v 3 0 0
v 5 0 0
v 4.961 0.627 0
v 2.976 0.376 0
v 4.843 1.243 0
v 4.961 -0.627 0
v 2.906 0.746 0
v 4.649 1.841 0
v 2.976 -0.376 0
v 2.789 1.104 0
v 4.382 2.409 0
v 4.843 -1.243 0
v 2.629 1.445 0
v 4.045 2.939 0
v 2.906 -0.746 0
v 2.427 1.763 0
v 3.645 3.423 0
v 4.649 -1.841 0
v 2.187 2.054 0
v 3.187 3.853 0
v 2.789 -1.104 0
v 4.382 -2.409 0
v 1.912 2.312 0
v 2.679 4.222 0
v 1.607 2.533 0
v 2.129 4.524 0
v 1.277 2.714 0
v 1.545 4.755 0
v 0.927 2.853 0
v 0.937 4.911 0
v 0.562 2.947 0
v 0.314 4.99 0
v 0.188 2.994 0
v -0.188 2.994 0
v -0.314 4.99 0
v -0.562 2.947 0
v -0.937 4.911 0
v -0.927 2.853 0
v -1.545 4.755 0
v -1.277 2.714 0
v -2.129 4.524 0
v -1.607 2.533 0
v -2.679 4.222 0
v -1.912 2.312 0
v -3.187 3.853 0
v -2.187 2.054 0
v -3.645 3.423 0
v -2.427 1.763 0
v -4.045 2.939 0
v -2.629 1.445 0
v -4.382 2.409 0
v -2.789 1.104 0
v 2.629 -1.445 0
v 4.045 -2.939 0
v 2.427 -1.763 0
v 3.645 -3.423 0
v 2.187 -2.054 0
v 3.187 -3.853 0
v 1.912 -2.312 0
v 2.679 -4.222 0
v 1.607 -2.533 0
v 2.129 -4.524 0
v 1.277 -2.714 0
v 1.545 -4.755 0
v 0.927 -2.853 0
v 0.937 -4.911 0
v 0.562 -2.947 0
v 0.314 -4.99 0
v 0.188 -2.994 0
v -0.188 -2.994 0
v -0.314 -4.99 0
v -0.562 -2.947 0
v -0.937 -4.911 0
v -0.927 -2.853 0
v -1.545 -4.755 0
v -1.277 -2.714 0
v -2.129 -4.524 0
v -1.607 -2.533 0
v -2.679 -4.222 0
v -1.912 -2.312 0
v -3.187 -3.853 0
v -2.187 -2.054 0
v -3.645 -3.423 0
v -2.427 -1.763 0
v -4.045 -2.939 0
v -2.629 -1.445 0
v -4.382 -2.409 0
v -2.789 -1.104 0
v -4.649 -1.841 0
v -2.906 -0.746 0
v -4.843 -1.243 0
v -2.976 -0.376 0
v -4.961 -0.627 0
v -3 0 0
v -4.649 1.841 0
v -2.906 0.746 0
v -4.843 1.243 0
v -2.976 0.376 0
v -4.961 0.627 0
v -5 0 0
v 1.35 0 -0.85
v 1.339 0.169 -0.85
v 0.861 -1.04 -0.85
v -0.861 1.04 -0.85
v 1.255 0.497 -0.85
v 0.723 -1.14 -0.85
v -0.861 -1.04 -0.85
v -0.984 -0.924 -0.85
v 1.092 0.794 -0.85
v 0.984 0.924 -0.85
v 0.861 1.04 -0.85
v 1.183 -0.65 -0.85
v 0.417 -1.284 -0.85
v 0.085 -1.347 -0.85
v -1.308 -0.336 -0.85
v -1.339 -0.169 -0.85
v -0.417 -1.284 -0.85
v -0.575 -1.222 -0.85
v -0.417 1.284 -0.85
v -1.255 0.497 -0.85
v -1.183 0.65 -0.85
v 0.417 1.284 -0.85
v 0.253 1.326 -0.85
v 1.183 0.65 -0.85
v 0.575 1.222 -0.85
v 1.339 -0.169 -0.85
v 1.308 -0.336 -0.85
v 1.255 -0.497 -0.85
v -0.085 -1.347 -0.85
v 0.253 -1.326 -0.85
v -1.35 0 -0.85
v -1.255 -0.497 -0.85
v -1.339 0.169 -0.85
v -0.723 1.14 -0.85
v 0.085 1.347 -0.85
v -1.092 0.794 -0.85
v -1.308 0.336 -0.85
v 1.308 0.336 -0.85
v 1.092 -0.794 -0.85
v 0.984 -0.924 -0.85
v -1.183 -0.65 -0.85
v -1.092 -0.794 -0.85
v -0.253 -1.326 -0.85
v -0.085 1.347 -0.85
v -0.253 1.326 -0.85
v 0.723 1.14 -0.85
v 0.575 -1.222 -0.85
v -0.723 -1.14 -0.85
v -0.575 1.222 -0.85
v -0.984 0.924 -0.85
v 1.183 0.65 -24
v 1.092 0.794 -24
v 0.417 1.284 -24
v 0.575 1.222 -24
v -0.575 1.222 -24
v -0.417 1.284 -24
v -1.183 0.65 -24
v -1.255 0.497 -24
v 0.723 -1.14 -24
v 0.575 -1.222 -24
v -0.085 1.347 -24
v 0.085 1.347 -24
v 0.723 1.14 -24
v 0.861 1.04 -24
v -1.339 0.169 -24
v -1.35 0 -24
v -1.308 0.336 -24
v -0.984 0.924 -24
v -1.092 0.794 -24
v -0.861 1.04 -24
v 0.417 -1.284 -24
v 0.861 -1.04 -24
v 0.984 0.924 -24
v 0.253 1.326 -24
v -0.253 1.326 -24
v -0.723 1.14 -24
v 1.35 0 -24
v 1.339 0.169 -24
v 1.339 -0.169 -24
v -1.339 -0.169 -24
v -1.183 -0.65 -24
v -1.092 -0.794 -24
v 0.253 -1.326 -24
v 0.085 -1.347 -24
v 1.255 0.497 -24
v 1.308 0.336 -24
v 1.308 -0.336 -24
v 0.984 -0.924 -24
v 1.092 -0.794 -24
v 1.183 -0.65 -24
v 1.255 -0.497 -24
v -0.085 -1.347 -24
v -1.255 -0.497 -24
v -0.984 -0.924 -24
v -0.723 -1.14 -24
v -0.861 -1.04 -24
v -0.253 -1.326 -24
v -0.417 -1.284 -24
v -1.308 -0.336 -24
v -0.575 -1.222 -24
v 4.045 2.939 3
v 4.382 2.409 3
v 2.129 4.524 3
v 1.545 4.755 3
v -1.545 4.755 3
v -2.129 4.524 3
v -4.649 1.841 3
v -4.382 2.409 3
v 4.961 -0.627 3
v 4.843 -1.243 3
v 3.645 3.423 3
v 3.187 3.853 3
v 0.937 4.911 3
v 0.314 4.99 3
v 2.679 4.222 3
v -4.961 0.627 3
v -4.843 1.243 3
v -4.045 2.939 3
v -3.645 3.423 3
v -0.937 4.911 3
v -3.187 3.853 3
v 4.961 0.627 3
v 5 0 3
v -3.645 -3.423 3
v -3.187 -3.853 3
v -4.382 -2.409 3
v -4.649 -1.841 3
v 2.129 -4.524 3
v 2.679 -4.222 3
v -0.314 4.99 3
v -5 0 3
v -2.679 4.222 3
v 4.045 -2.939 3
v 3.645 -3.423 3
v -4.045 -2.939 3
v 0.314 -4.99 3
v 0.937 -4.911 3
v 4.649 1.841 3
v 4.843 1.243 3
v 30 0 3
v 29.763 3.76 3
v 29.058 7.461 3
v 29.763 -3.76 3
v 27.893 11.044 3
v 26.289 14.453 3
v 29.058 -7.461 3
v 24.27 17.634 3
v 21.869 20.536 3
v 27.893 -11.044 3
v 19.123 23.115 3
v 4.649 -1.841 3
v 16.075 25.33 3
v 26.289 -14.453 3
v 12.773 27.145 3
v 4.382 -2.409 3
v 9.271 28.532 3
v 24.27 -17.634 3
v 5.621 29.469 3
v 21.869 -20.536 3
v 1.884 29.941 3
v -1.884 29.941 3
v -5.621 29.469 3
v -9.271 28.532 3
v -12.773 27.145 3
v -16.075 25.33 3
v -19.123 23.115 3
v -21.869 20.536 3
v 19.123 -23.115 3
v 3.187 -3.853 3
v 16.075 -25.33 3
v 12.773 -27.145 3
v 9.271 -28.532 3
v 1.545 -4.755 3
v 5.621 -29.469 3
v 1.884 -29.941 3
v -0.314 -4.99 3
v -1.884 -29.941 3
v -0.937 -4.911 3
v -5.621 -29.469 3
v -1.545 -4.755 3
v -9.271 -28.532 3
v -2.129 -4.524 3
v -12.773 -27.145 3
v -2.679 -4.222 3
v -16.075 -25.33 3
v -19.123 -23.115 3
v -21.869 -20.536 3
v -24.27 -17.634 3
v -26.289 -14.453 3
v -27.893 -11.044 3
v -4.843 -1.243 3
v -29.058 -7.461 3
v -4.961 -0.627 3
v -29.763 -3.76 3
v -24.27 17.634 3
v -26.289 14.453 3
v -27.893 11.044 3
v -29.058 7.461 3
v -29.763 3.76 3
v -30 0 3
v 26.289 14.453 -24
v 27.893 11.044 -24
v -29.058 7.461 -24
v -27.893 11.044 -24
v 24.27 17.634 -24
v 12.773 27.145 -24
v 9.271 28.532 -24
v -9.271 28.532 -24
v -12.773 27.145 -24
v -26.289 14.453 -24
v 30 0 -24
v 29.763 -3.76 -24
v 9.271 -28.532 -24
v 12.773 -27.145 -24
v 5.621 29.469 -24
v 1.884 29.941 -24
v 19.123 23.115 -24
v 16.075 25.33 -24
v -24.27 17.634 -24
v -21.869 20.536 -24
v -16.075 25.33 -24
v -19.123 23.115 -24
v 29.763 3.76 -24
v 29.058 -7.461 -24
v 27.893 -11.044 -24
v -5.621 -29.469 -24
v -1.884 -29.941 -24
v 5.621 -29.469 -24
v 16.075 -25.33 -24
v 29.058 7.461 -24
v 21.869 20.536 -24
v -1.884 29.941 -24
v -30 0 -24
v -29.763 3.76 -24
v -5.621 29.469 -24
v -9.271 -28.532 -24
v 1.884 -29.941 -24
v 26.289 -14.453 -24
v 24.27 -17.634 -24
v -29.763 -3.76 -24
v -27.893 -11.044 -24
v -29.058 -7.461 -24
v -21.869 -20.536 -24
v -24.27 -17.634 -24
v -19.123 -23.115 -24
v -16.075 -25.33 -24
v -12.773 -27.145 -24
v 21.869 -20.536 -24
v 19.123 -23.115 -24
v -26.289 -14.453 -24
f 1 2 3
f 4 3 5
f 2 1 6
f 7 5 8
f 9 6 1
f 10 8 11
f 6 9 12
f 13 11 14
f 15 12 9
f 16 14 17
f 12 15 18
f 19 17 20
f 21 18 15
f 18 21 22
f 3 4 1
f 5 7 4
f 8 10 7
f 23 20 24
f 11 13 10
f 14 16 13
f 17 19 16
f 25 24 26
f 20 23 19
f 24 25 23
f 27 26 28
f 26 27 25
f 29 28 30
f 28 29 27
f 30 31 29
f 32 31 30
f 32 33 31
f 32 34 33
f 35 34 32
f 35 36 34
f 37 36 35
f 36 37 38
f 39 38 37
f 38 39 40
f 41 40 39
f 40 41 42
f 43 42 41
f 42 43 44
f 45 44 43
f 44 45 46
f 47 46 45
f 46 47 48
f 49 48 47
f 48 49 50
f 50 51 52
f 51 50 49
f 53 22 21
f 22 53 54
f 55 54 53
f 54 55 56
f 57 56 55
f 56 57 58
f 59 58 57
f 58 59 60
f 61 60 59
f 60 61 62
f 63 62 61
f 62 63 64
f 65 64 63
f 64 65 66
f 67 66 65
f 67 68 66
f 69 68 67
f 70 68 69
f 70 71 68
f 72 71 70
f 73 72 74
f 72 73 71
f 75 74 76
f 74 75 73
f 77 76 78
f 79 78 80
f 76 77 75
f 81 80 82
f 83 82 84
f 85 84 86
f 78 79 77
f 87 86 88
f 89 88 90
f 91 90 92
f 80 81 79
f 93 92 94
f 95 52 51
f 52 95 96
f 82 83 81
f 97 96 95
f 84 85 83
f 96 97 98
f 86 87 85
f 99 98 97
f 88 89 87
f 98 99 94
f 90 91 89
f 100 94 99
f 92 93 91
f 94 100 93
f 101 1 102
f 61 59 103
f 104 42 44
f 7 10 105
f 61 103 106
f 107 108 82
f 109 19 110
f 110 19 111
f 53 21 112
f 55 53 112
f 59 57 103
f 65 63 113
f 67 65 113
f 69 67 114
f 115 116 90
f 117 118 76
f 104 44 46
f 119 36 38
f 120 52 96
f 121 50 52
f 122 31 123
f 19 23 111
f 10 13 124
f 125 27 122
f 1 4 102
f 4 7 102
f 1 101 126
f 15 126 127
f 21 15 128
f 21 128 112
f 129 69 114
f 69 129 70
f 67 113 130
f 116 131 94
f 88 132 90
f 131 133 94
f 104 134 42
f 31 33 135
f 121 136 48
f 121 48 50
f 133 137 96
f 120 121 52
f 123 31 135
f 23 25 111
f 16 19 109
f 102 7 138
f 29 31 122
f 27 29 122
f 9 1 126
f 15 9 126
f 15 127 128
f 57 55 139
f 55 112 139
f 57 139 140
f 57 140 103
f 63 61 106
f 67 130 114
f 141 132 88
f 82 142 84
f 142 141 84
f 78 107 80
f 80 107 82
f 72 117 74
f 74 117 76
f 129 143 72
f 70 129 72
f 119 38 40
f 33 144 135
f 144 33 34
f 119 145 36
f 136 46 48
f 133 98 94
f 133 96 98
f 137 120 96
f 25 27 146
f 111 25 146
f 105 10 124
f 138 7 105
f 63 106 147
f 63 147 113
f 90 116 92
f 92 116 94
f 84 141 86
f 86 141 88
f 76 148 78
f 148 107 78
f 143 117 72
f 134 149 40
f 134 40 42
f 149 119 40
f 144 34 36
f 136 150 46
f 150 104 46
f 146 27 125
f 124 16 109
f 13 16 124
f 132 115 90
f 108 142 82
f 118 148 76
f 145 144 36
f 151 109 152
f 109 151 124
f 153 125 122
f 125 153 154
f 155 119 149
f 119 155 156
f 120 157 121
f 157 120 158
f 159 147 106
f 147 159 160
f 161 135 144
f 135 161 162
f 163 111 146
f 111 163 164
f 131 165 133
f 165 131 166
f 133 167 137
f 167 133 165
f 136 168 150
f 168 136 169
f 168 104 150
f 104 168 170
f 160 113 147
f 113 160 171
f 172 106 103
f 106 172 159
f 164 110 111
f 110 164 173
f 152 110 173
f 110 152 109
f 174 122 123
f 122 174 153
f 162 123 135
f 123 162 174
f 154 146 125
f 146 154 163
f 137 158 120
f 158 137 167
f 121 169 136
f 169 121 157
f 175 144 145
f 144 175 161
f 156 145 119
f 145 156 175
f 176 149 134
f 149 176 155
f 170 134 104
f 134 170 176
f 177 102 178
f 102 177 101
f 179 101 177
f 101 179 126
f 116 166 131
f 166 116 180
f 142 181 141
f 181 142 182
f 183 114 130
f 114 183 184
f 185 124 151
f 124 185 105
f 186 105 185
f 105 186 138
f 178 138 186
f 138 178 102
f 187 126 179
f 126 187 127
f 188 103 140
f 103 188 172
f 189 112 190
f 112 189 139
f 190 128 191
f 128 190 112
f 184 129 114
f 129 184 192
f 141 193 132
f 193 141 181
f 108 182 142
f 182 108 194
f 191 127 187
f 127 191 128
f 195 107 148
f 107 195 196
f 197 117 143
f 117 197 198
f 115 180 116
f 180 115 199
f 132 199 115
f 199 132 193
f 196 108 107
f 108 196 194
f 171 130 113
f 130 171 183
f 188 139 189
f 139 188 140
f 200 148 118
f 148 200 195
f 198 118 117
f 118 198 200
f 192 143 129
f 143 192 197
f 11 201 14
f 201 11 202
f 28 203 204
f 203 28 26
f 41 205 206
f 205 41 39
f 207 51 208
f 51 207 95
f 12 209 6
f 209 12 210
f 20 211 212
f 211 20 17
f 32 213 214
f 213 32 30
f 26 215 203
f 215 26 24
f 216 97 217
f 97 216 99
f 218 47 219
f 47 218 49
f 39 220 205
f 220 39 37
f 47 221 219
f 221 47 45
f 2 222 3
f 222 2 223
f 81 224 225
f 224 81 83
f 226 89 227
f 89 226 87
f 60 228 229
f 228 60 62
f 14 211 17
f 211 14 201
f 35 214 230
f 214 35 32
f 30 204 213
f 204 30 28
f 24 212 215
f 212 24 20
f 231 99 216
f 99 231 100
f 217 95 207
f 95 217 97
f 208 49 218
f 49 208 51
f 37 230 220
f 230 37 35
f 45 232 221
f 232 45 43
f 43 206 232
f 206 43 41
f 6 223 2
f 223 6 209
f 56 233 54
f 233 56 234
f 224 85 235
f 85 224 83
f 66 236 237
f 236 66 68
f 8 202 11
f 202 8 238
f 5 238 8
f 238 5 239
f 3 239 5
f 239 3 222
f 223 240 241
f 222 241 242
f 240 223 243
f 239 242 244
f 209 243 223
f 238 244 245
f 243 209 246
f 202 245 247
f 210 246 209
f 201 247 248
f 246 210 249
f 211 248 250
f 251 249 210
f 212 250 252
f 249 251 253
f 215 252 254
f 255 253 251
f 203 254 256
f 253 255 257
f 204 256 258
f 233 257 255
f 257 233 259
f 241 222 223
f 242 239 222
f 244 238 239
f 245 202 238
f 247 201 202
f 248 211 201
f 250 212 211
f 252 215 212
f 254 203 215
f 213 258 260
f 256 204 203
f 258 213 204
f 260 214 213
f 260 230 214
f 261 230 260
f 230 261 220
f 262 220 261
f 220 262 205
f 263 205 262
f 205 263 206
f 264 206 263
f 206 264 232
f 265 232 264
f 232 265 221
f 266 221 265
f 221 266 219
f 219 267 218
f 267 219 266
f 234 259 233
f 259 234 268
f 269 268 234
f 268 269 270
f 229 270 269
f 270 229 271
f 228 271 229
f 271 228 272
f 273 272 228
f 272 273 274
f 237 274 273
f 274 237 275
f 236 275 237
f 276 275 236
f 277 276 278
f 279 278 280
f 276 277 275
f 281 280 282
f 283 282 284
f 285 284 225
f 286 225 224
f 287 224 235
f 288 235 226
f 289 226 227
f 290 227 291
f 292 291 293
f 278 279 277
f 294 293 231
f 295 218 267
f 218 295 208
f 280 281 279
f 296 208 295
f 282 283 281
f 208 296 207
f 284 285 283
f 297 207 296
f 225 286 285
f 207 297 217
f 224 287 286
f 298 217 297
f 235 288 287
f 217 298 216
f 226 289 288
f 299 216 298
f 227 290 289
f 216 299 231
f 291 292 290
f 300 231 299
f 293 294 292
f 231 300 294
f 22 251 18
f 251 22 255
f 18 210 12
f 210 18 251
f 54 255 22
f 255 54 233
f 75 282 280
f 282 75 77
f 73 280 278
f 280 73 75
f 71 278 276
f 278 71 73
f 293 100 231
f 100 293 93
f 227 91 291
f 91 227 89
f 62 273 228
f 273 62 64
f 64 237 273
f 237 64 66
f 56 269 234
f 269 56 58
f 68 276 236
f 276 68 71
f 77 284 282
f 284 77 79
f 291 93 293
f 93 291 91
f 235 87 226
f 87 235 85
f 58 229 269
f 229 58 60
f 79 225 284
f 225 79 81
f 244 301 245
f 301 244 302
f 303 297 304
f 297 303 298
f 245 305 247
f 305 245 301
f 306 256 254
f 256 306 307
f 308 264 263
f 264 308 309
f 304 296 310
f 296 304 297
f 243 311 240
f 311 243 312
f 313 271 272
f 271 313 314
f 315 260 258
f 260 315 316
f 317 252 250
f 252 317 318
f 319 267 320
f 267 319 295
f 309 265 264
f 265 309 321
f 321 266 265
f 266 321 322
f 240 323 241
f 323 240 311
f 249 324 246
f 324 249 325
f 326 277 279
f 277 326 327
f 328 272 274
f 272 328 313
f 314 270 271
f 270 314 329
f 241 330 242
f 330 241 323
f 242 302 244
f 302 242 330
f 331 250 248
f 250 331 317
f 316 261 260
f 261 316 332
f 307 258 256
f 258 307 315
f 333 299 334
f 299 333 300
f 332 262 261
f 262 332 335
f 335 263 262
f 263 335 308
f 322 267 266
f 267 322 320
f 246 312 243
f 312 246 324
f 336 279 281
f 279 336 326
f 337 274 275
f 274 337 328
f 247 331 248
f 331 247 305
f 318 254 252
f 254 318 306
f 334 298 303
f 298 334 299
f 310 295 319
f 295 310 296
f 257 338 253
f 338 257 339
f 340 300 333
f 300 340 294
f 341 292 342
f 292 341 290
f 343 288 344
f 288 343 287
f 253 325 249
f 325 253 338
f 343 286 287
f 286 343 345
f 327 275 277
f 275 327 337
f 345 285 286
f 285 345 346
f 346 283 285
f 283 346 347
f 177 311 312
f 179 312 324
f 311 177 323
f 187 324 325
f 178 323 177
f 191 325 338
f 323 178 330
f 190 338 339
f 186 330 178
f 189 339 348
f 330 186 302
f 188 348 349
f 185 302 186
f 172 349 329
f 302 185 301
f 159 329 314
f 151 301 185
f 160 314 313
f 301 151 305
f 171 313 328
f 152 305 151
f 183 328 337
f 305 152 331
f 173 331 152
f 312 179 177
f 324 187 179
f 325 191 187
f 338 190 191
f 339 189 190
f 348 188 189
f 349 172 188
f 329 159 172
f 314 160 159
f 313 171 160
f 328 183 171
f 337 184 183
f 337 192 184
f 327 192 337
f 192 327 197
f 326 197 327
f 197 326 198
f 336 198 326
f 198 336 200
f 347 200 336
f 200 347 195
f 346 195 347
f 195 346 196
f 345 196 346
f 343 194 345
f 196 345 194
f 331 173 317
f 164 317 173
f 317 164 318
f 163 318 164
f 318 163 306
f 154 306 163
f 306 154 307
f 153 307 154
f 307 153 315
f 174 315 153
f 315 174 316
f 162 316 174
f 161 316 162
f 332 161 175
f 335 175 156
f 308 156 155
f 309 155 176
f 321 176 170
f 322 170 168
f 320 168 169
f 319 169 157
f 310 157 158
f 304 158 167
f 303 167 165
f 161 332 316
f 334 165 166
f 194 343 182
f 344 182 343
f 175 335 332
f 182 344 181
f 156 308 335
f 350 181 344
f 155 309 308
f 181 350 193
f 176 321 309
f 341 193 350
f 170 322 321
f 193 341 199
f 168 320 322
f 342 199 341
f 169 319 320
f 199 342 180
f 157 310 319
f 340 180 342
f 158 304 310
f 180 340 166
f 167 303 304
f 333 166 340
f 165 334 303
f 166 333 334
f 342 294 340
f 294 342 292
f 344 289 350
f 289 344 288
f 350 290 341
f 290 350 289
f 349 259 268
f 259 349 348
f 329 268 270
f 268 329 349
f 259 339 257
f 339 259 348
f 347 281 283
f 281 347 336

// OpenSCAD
$fn = 50;


difference() {
	union() {
		translate(v = [0, 0, -24.0000000000]) {
			cylinder(h = 27, r = 30.0000000000);
		}
	}
	union() {
		translate(v = [0, 0, 0]) {
			rotate(a = [0, 0, 0]) {
				difference() {
					union() {
						translate(v = [0, 0, -27.0000000000]) {
							cylinder(h = 27, r = 1.0000000000);
						}
						translate(v = [0, 0, -0.8500000000]) {
							cylinder(h = 0.8500000000, r1 = 1.3500000000, r2 = 3.0000000000);
						}
						translate(v = [0, 0, -27.0000000000]) {
							cylinder(h = 27, r = 1.3500000000);
						}
						translate(v = [0, 0, -27.0000000000]) {
							cylinder(h = 27, r = 1.0000000000);
						}
					}
					union();
				}
			}
		}
		#cylinder(h = 3, r = 5.0000000000);
	}
}
